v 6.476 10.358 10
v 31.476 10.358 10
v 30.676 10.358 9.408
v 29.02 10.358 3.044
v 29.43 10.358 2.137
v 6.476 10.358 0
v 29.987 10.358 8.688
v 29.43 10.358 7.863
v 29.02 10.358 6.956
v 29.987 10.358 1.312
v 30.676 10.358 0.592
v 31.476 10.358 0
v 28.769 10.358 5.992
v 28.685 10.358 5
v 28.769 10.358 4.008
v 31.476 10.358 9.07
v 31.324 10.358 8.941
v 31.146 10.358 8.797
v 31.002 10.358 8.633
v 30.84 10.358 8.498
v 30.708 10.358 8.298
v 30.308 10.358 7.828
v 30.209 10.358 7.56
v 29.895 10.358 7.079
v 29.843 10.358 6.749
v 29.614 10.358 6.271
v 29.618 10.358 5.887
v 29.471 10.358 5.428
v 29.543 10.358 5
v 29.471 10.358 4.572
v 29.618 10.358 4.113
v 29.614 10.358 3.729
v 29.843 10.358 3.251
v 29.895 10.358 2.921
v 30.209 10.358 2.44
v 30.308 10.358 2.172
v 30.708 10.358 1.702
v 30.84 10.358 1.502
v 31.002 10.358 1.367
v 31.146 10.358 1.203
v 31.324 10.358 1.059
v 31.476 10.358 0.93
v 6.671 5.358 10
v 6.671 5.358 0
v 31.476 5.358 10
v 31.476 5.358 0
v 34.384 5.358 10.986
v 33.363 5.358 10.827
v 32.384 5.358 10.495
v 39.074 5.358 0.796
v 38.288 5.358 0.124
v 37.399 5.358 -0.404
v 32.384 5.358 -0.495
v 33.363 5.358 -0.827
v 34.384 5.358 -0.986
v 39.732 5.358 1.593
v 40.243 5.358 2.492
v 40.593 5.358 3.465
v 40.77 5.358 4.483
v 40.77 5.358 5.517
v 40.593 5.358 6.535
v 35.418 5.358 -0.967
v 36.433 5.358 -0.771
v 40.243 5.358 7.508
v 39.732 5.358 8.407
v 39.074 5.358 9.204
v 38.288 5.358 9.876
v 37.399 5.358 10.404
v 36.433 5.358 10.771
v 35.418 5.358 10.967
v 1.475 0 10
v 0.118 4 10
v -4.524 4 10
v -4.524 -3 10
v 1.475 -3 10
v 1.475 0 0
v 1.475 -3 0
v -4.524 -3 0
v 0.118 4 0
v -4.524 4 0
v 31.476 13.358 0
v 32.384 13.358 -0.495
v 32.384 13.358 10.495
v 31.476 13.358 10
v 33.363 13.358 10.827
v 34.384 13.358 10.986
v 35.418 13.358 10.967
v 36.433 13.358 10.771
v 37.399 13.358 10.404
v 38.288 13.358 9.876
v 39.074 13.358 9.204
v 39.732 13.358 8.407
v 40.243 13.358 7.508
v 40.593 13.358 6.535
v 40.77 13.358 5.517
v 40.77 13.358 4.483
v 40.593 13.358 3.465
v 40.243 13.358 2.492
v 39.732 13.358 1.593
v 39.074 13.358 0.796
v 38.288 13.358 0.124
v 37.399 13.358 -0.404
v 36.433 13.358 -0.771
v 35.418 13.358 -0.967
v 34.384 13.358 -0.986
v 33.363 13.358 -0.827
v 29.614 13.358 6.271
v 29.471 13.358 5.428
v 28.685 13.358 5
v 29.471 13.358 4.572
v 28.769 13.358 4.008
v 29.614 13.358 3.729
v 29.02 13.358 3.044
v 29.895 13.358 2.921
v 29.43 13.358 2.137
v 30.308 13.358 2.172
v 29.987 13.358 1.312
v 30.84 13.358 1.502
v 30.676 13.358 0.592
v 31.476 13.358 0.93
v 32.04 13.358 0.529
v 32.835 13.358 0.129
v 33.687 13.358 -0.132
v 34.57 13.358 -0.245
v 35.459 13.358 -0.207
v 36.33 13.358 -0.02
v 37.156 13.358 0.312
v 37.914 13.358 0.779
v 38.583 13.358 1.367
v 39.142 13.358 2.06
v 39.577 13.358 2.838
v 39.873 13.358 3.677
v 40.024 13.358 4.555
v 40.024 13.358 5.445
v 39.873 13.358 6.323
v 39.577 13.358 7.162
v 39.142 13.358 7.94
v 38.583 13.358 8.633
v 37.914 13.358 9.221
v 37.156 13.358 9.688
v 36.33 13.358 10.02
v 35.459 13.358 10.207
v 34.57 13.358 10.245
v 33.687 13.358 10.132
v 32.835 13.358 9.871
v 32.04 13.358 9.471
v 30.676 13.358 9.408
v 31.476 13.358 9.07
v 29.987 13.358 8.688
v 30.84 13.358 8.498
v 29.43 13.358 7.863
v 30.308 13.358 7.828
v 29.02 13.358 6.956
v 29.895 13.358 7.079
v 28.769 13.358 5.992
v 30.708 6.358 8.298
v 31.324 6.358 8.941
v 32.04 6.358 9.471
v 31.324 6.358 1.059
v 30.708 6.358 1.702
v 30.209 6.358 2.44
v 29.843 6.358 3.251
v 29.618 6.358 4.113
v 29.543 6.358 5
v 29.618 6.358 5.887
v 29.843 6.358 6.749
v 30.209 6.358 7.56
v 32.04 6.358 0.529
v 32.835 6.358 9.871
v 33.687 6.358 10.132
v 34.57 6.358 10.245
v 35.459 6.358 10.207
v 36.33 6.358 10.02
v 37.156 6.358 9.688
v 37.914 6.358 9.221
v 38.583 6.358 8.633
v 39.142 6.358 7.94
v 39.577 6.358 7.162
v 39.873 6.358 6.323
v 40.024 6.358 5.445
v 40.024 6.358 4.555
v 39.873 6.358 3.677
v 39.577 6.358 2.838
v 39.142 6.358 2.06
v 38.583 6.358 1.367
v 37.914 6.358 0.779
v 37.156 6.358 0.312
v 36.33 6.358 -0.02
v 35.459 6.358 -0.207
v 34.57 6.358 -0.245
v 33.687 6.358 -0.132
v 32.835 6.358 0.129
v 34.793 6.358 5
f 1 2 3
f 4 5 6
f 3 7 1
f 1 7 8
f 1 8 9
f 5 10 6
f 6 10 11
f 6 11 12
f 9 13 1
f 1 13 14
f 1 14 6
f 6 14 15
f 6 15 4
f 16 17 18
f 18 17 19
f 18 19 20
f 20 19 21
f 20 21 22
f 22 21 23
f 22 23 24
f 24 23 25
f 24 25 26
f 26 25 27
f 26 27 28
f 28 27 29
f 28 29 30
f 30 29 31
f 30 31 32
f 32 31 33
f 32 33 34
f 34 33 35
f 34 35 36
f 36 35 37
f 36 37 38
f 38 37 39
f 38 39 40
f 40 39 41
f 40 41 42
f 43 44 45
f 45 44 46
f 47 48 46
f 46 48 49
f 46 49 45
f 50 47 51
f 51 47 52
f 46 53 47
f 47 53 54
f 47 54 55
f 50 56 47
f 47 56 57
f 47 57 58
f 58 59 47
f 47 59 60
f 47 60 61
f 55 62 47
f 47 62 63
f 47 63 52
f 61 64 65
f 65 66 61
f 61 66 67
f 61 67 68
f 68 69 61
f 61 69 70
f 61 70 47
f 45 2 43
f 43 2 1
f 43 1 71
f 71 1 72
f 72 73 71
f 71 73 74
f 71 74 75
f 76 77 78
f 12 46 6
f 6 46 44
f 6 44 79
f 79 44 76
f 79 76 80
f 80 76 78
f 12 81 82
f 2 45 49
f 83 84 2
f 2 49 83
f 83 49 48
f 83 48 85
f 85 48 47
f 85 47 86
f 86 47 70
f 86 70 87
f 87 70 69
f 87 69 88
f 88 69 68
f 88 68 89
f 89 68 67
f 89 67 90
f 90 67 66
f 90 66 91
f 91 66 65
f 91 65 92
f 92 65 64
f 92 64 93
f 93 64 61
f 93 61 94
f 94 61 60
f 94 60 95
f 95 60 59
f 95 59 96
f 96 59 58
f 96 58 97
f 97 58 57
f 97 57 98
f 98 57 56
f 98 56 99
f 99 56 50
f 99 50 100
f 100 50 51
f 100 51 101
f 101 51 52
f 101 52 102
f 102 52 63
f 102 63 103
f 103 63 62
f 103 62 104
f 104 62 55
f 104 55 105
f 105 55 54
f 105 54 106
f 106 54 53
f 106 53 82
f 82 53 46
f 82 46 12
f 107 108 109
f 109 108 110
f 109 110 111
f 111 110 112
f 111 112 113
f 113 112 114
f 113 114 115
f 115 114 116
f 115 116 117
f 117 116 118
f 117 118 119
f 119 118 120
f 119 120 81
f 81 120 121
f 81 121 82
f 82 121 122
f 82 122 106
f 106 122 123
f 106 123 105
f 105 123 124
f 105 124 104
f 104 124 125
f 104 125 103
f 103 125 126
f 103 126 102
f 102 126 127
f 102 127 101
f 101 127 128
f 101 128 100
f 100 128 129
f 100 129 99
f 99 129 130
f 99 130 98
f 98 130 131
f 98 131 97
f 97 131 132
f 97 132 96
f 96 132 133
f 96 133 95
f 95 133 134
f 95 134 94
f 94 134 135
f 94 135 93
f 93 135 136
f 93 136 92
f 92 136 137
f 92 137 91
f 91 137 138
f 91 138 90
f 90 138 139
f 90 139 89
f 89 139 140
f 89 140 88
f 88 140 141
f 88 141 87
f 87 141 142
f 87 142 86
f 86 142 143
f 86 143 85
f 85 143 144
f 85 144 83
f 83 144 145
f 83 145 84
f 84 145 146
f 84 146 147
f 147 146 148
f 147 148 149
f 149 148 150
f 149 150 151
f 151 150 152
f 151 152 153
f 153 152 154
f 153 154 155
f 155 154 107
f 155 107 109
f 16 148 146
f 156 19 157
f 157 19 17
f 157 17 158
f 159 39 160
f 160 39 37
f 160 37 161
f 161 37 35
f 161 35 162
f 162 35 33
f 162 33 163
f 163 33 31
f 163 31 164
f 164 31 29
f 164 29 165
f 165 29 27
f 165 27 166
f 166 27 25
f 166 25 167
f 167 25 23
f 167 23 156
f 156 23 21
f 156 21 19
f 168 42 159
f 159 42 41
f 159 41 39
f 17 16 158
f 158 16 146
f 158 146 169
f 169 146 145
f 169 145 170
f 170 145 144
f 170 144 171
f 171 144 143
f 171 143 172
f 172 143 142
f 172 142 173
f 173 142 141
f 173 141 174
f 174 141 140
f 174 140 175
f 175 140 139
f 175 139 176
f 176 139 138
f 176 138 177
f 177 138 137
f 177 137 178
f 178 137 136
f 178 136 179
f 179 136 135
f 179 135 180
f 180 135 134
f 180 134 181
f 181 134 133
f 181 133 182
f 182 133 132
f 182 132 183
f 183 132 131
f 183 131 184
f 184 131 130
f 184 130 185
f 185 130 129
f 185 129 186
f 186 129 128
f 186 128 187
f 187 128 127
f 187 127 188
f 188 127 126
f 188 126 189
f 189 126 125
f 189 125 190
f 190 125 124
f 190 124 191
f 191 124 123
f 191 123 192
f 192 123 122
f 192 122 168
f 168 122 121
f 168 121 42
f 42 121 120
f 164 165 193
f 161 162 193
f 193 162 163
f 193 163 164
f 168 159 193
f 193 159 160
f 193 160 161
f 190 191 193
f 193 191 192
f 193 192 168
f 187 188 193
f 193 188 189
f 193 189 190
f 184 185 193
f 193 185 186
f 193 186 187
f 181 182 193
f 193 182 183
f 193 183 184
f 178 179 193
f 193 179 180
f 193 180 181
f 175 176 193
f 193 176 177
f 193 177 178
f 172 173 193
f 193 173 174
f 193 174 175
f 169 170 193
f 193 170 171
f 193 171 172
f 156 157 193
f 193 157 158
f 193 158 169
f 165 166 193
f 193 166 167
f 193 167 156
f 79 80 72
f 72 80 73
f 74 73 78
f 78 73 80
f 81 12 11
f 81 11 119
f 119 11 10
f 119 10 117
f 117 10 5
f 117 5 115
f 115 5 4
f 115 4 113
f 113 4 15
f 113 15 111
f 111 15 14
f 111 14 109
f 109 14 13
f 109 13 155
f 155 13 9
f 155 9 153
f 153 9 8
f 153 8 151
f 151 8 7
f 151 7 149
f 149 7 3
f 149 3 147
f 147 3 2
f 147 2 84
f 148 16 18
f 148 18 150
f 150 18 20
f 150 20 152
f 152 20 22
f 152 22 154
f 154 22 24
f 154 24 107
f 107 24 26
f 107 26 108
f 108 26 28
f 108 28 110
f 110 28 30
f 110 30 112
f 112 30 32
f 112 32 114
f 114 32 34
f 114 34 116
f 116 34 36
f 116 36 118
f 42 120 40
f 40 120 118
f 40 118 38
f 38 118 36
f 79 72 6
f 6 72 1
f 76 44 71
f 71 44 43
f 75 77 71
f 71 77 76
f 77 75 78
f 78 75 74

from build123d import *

# Parameters (mm, degrees)
BOSS_EXTRUDE1_DEPTH = 10
BOSS_EXTRUDE4_DEPTH = 8
SKETCH7_R           = 5.25
CUT_EXTRUDE1_DEPTH  = 7
SKETCH8_W           = 10
SKETCH8_H           = 4
BOSS_EXTRUDE5_DEPTH = 11
CUT_EXTRUDE2_DEPTH  = 10
BOSS_EXTRUDE6_DEPTH = 3
BOSS_EXTRUDE7_DEPTH = 10
CUT_EXTRUDE3_DEPTH  = 10
SKETCH13_W          = 5.998509049
SKETCH13_H          = 10
BOSS_EXTRUDE8_DEPTH = 3


with BuildPart() as part:
    # Sketch2 → Boss-Extrude1 (new body)
    with BuildSketch(Plane.XY):
        Polygon((6.476, 10.358), (31.476, 10.358), (31.476, 5.358), (11.456, 5.358), (11.456, 0), (6.476, 0), align=None)
    extrude(amount=BOSS_EXTRUDE1_DEPTH)

    # Sketch6 → Boss-Extrude4 (add)
    with BuildSketch(Plane.XZ.offset(-5.358)):
        with BuildLine():
            Line((31.476, 0), (31.476, 10))
            ThreePointArc((31.476, 10), (40.79262479, 5), (31.476, 0))
        make_face()
    extrude(amount=-BOSS_EXTRUDE4_DEPTH)

    # Sketch7 → Cut-Extrude1 (cut)
    with BuildSketch(Plane(origin=(0, 13.358, 0), x_dir=(1, 0, 0), z_dir=(0, 1, 0))):
        with Locations(Location((34.79262479, -5, 0), (0, 0, 180))):
            Circle(SKETCH7_R)
    extrude(amount=-CUT_EXTRUDE1_DEPTH, mode=Mode.SUBTRACT)

    # Sketch8 → Boss-Extrude5 (add)
    with BuildSketch(Plane.ZY.offset(-6.476)):
        with Locations((5, 2)):
            Rectangle(SKETCH8_W, SKETCH8_H)
    extrude(amount=BOSS_EXTRUDE5_DEPTH)

    # Sketch9 → Cut-Extrude2 (cut)
    with BuildSketch(Plane.XY.offset(10)):
        Polygon((11.456, 5.358), (6.259030685, 0), (11.456, 0), align=None)
    extrude(amount=-CUT_EXTRUDE2_DEPTH, mode=Mode.SUBTRACT)

    # Sketch10 → Boss-Extrude6 (add)
    with BuildSketch(Plane(origin=(0, 10.358, 0), x_dir=(1, 0, 0), z_dir=(0, 1, 0))):
        with BuildLine():
            Line((31.476, -10), (31.476, -9.069705149))
            ThreePointArc((31.476, -9.069705149), (29.453104981, -5), (31.476, -0.930294851))
            Line((31.476, -0.930294851), (31.476, 0))
            ThreePointArc((31.476, 0), (28.684587845, -5), (31.476, -10))
        make_face()
    extrude(amount=BOSS_EXTRUDE6_DEPTH)

    # Sketch11 → Boss-Extrude7 (add)
    with BuildSketch(Plane.XY.offset(10)):
        Polygon((6.476, 4), (6.476, 10.358), (0.118, 4), align=None)
    extrude(amount=-BOSS_EXTRUDE7_DEPTH)

    # Sketch12 → Cut-Extrude3 (cut)
    with BuildSketch(Plane.XY.offset(10)):
        Polygon((6.259030685, 0), (1.474509049, 0), (6.671478364, 5.358), (11.456, 5.358), align=None)
    extrude(amount=-CUT_EXTRUDE3_DEPTH, mode=Mode.SUBTRACT)

    # Sketch13 → Boss-Extrude8 (add)
    with BuildSketch(Plane.XZ):
        with Locations((-1.524745476, 5)):
            Rectangle(SKETCH13_W, SKETCH13_H)
    extrude(amount=BOSS_EXTRUDE8_DEPTH)


solid = part.part
